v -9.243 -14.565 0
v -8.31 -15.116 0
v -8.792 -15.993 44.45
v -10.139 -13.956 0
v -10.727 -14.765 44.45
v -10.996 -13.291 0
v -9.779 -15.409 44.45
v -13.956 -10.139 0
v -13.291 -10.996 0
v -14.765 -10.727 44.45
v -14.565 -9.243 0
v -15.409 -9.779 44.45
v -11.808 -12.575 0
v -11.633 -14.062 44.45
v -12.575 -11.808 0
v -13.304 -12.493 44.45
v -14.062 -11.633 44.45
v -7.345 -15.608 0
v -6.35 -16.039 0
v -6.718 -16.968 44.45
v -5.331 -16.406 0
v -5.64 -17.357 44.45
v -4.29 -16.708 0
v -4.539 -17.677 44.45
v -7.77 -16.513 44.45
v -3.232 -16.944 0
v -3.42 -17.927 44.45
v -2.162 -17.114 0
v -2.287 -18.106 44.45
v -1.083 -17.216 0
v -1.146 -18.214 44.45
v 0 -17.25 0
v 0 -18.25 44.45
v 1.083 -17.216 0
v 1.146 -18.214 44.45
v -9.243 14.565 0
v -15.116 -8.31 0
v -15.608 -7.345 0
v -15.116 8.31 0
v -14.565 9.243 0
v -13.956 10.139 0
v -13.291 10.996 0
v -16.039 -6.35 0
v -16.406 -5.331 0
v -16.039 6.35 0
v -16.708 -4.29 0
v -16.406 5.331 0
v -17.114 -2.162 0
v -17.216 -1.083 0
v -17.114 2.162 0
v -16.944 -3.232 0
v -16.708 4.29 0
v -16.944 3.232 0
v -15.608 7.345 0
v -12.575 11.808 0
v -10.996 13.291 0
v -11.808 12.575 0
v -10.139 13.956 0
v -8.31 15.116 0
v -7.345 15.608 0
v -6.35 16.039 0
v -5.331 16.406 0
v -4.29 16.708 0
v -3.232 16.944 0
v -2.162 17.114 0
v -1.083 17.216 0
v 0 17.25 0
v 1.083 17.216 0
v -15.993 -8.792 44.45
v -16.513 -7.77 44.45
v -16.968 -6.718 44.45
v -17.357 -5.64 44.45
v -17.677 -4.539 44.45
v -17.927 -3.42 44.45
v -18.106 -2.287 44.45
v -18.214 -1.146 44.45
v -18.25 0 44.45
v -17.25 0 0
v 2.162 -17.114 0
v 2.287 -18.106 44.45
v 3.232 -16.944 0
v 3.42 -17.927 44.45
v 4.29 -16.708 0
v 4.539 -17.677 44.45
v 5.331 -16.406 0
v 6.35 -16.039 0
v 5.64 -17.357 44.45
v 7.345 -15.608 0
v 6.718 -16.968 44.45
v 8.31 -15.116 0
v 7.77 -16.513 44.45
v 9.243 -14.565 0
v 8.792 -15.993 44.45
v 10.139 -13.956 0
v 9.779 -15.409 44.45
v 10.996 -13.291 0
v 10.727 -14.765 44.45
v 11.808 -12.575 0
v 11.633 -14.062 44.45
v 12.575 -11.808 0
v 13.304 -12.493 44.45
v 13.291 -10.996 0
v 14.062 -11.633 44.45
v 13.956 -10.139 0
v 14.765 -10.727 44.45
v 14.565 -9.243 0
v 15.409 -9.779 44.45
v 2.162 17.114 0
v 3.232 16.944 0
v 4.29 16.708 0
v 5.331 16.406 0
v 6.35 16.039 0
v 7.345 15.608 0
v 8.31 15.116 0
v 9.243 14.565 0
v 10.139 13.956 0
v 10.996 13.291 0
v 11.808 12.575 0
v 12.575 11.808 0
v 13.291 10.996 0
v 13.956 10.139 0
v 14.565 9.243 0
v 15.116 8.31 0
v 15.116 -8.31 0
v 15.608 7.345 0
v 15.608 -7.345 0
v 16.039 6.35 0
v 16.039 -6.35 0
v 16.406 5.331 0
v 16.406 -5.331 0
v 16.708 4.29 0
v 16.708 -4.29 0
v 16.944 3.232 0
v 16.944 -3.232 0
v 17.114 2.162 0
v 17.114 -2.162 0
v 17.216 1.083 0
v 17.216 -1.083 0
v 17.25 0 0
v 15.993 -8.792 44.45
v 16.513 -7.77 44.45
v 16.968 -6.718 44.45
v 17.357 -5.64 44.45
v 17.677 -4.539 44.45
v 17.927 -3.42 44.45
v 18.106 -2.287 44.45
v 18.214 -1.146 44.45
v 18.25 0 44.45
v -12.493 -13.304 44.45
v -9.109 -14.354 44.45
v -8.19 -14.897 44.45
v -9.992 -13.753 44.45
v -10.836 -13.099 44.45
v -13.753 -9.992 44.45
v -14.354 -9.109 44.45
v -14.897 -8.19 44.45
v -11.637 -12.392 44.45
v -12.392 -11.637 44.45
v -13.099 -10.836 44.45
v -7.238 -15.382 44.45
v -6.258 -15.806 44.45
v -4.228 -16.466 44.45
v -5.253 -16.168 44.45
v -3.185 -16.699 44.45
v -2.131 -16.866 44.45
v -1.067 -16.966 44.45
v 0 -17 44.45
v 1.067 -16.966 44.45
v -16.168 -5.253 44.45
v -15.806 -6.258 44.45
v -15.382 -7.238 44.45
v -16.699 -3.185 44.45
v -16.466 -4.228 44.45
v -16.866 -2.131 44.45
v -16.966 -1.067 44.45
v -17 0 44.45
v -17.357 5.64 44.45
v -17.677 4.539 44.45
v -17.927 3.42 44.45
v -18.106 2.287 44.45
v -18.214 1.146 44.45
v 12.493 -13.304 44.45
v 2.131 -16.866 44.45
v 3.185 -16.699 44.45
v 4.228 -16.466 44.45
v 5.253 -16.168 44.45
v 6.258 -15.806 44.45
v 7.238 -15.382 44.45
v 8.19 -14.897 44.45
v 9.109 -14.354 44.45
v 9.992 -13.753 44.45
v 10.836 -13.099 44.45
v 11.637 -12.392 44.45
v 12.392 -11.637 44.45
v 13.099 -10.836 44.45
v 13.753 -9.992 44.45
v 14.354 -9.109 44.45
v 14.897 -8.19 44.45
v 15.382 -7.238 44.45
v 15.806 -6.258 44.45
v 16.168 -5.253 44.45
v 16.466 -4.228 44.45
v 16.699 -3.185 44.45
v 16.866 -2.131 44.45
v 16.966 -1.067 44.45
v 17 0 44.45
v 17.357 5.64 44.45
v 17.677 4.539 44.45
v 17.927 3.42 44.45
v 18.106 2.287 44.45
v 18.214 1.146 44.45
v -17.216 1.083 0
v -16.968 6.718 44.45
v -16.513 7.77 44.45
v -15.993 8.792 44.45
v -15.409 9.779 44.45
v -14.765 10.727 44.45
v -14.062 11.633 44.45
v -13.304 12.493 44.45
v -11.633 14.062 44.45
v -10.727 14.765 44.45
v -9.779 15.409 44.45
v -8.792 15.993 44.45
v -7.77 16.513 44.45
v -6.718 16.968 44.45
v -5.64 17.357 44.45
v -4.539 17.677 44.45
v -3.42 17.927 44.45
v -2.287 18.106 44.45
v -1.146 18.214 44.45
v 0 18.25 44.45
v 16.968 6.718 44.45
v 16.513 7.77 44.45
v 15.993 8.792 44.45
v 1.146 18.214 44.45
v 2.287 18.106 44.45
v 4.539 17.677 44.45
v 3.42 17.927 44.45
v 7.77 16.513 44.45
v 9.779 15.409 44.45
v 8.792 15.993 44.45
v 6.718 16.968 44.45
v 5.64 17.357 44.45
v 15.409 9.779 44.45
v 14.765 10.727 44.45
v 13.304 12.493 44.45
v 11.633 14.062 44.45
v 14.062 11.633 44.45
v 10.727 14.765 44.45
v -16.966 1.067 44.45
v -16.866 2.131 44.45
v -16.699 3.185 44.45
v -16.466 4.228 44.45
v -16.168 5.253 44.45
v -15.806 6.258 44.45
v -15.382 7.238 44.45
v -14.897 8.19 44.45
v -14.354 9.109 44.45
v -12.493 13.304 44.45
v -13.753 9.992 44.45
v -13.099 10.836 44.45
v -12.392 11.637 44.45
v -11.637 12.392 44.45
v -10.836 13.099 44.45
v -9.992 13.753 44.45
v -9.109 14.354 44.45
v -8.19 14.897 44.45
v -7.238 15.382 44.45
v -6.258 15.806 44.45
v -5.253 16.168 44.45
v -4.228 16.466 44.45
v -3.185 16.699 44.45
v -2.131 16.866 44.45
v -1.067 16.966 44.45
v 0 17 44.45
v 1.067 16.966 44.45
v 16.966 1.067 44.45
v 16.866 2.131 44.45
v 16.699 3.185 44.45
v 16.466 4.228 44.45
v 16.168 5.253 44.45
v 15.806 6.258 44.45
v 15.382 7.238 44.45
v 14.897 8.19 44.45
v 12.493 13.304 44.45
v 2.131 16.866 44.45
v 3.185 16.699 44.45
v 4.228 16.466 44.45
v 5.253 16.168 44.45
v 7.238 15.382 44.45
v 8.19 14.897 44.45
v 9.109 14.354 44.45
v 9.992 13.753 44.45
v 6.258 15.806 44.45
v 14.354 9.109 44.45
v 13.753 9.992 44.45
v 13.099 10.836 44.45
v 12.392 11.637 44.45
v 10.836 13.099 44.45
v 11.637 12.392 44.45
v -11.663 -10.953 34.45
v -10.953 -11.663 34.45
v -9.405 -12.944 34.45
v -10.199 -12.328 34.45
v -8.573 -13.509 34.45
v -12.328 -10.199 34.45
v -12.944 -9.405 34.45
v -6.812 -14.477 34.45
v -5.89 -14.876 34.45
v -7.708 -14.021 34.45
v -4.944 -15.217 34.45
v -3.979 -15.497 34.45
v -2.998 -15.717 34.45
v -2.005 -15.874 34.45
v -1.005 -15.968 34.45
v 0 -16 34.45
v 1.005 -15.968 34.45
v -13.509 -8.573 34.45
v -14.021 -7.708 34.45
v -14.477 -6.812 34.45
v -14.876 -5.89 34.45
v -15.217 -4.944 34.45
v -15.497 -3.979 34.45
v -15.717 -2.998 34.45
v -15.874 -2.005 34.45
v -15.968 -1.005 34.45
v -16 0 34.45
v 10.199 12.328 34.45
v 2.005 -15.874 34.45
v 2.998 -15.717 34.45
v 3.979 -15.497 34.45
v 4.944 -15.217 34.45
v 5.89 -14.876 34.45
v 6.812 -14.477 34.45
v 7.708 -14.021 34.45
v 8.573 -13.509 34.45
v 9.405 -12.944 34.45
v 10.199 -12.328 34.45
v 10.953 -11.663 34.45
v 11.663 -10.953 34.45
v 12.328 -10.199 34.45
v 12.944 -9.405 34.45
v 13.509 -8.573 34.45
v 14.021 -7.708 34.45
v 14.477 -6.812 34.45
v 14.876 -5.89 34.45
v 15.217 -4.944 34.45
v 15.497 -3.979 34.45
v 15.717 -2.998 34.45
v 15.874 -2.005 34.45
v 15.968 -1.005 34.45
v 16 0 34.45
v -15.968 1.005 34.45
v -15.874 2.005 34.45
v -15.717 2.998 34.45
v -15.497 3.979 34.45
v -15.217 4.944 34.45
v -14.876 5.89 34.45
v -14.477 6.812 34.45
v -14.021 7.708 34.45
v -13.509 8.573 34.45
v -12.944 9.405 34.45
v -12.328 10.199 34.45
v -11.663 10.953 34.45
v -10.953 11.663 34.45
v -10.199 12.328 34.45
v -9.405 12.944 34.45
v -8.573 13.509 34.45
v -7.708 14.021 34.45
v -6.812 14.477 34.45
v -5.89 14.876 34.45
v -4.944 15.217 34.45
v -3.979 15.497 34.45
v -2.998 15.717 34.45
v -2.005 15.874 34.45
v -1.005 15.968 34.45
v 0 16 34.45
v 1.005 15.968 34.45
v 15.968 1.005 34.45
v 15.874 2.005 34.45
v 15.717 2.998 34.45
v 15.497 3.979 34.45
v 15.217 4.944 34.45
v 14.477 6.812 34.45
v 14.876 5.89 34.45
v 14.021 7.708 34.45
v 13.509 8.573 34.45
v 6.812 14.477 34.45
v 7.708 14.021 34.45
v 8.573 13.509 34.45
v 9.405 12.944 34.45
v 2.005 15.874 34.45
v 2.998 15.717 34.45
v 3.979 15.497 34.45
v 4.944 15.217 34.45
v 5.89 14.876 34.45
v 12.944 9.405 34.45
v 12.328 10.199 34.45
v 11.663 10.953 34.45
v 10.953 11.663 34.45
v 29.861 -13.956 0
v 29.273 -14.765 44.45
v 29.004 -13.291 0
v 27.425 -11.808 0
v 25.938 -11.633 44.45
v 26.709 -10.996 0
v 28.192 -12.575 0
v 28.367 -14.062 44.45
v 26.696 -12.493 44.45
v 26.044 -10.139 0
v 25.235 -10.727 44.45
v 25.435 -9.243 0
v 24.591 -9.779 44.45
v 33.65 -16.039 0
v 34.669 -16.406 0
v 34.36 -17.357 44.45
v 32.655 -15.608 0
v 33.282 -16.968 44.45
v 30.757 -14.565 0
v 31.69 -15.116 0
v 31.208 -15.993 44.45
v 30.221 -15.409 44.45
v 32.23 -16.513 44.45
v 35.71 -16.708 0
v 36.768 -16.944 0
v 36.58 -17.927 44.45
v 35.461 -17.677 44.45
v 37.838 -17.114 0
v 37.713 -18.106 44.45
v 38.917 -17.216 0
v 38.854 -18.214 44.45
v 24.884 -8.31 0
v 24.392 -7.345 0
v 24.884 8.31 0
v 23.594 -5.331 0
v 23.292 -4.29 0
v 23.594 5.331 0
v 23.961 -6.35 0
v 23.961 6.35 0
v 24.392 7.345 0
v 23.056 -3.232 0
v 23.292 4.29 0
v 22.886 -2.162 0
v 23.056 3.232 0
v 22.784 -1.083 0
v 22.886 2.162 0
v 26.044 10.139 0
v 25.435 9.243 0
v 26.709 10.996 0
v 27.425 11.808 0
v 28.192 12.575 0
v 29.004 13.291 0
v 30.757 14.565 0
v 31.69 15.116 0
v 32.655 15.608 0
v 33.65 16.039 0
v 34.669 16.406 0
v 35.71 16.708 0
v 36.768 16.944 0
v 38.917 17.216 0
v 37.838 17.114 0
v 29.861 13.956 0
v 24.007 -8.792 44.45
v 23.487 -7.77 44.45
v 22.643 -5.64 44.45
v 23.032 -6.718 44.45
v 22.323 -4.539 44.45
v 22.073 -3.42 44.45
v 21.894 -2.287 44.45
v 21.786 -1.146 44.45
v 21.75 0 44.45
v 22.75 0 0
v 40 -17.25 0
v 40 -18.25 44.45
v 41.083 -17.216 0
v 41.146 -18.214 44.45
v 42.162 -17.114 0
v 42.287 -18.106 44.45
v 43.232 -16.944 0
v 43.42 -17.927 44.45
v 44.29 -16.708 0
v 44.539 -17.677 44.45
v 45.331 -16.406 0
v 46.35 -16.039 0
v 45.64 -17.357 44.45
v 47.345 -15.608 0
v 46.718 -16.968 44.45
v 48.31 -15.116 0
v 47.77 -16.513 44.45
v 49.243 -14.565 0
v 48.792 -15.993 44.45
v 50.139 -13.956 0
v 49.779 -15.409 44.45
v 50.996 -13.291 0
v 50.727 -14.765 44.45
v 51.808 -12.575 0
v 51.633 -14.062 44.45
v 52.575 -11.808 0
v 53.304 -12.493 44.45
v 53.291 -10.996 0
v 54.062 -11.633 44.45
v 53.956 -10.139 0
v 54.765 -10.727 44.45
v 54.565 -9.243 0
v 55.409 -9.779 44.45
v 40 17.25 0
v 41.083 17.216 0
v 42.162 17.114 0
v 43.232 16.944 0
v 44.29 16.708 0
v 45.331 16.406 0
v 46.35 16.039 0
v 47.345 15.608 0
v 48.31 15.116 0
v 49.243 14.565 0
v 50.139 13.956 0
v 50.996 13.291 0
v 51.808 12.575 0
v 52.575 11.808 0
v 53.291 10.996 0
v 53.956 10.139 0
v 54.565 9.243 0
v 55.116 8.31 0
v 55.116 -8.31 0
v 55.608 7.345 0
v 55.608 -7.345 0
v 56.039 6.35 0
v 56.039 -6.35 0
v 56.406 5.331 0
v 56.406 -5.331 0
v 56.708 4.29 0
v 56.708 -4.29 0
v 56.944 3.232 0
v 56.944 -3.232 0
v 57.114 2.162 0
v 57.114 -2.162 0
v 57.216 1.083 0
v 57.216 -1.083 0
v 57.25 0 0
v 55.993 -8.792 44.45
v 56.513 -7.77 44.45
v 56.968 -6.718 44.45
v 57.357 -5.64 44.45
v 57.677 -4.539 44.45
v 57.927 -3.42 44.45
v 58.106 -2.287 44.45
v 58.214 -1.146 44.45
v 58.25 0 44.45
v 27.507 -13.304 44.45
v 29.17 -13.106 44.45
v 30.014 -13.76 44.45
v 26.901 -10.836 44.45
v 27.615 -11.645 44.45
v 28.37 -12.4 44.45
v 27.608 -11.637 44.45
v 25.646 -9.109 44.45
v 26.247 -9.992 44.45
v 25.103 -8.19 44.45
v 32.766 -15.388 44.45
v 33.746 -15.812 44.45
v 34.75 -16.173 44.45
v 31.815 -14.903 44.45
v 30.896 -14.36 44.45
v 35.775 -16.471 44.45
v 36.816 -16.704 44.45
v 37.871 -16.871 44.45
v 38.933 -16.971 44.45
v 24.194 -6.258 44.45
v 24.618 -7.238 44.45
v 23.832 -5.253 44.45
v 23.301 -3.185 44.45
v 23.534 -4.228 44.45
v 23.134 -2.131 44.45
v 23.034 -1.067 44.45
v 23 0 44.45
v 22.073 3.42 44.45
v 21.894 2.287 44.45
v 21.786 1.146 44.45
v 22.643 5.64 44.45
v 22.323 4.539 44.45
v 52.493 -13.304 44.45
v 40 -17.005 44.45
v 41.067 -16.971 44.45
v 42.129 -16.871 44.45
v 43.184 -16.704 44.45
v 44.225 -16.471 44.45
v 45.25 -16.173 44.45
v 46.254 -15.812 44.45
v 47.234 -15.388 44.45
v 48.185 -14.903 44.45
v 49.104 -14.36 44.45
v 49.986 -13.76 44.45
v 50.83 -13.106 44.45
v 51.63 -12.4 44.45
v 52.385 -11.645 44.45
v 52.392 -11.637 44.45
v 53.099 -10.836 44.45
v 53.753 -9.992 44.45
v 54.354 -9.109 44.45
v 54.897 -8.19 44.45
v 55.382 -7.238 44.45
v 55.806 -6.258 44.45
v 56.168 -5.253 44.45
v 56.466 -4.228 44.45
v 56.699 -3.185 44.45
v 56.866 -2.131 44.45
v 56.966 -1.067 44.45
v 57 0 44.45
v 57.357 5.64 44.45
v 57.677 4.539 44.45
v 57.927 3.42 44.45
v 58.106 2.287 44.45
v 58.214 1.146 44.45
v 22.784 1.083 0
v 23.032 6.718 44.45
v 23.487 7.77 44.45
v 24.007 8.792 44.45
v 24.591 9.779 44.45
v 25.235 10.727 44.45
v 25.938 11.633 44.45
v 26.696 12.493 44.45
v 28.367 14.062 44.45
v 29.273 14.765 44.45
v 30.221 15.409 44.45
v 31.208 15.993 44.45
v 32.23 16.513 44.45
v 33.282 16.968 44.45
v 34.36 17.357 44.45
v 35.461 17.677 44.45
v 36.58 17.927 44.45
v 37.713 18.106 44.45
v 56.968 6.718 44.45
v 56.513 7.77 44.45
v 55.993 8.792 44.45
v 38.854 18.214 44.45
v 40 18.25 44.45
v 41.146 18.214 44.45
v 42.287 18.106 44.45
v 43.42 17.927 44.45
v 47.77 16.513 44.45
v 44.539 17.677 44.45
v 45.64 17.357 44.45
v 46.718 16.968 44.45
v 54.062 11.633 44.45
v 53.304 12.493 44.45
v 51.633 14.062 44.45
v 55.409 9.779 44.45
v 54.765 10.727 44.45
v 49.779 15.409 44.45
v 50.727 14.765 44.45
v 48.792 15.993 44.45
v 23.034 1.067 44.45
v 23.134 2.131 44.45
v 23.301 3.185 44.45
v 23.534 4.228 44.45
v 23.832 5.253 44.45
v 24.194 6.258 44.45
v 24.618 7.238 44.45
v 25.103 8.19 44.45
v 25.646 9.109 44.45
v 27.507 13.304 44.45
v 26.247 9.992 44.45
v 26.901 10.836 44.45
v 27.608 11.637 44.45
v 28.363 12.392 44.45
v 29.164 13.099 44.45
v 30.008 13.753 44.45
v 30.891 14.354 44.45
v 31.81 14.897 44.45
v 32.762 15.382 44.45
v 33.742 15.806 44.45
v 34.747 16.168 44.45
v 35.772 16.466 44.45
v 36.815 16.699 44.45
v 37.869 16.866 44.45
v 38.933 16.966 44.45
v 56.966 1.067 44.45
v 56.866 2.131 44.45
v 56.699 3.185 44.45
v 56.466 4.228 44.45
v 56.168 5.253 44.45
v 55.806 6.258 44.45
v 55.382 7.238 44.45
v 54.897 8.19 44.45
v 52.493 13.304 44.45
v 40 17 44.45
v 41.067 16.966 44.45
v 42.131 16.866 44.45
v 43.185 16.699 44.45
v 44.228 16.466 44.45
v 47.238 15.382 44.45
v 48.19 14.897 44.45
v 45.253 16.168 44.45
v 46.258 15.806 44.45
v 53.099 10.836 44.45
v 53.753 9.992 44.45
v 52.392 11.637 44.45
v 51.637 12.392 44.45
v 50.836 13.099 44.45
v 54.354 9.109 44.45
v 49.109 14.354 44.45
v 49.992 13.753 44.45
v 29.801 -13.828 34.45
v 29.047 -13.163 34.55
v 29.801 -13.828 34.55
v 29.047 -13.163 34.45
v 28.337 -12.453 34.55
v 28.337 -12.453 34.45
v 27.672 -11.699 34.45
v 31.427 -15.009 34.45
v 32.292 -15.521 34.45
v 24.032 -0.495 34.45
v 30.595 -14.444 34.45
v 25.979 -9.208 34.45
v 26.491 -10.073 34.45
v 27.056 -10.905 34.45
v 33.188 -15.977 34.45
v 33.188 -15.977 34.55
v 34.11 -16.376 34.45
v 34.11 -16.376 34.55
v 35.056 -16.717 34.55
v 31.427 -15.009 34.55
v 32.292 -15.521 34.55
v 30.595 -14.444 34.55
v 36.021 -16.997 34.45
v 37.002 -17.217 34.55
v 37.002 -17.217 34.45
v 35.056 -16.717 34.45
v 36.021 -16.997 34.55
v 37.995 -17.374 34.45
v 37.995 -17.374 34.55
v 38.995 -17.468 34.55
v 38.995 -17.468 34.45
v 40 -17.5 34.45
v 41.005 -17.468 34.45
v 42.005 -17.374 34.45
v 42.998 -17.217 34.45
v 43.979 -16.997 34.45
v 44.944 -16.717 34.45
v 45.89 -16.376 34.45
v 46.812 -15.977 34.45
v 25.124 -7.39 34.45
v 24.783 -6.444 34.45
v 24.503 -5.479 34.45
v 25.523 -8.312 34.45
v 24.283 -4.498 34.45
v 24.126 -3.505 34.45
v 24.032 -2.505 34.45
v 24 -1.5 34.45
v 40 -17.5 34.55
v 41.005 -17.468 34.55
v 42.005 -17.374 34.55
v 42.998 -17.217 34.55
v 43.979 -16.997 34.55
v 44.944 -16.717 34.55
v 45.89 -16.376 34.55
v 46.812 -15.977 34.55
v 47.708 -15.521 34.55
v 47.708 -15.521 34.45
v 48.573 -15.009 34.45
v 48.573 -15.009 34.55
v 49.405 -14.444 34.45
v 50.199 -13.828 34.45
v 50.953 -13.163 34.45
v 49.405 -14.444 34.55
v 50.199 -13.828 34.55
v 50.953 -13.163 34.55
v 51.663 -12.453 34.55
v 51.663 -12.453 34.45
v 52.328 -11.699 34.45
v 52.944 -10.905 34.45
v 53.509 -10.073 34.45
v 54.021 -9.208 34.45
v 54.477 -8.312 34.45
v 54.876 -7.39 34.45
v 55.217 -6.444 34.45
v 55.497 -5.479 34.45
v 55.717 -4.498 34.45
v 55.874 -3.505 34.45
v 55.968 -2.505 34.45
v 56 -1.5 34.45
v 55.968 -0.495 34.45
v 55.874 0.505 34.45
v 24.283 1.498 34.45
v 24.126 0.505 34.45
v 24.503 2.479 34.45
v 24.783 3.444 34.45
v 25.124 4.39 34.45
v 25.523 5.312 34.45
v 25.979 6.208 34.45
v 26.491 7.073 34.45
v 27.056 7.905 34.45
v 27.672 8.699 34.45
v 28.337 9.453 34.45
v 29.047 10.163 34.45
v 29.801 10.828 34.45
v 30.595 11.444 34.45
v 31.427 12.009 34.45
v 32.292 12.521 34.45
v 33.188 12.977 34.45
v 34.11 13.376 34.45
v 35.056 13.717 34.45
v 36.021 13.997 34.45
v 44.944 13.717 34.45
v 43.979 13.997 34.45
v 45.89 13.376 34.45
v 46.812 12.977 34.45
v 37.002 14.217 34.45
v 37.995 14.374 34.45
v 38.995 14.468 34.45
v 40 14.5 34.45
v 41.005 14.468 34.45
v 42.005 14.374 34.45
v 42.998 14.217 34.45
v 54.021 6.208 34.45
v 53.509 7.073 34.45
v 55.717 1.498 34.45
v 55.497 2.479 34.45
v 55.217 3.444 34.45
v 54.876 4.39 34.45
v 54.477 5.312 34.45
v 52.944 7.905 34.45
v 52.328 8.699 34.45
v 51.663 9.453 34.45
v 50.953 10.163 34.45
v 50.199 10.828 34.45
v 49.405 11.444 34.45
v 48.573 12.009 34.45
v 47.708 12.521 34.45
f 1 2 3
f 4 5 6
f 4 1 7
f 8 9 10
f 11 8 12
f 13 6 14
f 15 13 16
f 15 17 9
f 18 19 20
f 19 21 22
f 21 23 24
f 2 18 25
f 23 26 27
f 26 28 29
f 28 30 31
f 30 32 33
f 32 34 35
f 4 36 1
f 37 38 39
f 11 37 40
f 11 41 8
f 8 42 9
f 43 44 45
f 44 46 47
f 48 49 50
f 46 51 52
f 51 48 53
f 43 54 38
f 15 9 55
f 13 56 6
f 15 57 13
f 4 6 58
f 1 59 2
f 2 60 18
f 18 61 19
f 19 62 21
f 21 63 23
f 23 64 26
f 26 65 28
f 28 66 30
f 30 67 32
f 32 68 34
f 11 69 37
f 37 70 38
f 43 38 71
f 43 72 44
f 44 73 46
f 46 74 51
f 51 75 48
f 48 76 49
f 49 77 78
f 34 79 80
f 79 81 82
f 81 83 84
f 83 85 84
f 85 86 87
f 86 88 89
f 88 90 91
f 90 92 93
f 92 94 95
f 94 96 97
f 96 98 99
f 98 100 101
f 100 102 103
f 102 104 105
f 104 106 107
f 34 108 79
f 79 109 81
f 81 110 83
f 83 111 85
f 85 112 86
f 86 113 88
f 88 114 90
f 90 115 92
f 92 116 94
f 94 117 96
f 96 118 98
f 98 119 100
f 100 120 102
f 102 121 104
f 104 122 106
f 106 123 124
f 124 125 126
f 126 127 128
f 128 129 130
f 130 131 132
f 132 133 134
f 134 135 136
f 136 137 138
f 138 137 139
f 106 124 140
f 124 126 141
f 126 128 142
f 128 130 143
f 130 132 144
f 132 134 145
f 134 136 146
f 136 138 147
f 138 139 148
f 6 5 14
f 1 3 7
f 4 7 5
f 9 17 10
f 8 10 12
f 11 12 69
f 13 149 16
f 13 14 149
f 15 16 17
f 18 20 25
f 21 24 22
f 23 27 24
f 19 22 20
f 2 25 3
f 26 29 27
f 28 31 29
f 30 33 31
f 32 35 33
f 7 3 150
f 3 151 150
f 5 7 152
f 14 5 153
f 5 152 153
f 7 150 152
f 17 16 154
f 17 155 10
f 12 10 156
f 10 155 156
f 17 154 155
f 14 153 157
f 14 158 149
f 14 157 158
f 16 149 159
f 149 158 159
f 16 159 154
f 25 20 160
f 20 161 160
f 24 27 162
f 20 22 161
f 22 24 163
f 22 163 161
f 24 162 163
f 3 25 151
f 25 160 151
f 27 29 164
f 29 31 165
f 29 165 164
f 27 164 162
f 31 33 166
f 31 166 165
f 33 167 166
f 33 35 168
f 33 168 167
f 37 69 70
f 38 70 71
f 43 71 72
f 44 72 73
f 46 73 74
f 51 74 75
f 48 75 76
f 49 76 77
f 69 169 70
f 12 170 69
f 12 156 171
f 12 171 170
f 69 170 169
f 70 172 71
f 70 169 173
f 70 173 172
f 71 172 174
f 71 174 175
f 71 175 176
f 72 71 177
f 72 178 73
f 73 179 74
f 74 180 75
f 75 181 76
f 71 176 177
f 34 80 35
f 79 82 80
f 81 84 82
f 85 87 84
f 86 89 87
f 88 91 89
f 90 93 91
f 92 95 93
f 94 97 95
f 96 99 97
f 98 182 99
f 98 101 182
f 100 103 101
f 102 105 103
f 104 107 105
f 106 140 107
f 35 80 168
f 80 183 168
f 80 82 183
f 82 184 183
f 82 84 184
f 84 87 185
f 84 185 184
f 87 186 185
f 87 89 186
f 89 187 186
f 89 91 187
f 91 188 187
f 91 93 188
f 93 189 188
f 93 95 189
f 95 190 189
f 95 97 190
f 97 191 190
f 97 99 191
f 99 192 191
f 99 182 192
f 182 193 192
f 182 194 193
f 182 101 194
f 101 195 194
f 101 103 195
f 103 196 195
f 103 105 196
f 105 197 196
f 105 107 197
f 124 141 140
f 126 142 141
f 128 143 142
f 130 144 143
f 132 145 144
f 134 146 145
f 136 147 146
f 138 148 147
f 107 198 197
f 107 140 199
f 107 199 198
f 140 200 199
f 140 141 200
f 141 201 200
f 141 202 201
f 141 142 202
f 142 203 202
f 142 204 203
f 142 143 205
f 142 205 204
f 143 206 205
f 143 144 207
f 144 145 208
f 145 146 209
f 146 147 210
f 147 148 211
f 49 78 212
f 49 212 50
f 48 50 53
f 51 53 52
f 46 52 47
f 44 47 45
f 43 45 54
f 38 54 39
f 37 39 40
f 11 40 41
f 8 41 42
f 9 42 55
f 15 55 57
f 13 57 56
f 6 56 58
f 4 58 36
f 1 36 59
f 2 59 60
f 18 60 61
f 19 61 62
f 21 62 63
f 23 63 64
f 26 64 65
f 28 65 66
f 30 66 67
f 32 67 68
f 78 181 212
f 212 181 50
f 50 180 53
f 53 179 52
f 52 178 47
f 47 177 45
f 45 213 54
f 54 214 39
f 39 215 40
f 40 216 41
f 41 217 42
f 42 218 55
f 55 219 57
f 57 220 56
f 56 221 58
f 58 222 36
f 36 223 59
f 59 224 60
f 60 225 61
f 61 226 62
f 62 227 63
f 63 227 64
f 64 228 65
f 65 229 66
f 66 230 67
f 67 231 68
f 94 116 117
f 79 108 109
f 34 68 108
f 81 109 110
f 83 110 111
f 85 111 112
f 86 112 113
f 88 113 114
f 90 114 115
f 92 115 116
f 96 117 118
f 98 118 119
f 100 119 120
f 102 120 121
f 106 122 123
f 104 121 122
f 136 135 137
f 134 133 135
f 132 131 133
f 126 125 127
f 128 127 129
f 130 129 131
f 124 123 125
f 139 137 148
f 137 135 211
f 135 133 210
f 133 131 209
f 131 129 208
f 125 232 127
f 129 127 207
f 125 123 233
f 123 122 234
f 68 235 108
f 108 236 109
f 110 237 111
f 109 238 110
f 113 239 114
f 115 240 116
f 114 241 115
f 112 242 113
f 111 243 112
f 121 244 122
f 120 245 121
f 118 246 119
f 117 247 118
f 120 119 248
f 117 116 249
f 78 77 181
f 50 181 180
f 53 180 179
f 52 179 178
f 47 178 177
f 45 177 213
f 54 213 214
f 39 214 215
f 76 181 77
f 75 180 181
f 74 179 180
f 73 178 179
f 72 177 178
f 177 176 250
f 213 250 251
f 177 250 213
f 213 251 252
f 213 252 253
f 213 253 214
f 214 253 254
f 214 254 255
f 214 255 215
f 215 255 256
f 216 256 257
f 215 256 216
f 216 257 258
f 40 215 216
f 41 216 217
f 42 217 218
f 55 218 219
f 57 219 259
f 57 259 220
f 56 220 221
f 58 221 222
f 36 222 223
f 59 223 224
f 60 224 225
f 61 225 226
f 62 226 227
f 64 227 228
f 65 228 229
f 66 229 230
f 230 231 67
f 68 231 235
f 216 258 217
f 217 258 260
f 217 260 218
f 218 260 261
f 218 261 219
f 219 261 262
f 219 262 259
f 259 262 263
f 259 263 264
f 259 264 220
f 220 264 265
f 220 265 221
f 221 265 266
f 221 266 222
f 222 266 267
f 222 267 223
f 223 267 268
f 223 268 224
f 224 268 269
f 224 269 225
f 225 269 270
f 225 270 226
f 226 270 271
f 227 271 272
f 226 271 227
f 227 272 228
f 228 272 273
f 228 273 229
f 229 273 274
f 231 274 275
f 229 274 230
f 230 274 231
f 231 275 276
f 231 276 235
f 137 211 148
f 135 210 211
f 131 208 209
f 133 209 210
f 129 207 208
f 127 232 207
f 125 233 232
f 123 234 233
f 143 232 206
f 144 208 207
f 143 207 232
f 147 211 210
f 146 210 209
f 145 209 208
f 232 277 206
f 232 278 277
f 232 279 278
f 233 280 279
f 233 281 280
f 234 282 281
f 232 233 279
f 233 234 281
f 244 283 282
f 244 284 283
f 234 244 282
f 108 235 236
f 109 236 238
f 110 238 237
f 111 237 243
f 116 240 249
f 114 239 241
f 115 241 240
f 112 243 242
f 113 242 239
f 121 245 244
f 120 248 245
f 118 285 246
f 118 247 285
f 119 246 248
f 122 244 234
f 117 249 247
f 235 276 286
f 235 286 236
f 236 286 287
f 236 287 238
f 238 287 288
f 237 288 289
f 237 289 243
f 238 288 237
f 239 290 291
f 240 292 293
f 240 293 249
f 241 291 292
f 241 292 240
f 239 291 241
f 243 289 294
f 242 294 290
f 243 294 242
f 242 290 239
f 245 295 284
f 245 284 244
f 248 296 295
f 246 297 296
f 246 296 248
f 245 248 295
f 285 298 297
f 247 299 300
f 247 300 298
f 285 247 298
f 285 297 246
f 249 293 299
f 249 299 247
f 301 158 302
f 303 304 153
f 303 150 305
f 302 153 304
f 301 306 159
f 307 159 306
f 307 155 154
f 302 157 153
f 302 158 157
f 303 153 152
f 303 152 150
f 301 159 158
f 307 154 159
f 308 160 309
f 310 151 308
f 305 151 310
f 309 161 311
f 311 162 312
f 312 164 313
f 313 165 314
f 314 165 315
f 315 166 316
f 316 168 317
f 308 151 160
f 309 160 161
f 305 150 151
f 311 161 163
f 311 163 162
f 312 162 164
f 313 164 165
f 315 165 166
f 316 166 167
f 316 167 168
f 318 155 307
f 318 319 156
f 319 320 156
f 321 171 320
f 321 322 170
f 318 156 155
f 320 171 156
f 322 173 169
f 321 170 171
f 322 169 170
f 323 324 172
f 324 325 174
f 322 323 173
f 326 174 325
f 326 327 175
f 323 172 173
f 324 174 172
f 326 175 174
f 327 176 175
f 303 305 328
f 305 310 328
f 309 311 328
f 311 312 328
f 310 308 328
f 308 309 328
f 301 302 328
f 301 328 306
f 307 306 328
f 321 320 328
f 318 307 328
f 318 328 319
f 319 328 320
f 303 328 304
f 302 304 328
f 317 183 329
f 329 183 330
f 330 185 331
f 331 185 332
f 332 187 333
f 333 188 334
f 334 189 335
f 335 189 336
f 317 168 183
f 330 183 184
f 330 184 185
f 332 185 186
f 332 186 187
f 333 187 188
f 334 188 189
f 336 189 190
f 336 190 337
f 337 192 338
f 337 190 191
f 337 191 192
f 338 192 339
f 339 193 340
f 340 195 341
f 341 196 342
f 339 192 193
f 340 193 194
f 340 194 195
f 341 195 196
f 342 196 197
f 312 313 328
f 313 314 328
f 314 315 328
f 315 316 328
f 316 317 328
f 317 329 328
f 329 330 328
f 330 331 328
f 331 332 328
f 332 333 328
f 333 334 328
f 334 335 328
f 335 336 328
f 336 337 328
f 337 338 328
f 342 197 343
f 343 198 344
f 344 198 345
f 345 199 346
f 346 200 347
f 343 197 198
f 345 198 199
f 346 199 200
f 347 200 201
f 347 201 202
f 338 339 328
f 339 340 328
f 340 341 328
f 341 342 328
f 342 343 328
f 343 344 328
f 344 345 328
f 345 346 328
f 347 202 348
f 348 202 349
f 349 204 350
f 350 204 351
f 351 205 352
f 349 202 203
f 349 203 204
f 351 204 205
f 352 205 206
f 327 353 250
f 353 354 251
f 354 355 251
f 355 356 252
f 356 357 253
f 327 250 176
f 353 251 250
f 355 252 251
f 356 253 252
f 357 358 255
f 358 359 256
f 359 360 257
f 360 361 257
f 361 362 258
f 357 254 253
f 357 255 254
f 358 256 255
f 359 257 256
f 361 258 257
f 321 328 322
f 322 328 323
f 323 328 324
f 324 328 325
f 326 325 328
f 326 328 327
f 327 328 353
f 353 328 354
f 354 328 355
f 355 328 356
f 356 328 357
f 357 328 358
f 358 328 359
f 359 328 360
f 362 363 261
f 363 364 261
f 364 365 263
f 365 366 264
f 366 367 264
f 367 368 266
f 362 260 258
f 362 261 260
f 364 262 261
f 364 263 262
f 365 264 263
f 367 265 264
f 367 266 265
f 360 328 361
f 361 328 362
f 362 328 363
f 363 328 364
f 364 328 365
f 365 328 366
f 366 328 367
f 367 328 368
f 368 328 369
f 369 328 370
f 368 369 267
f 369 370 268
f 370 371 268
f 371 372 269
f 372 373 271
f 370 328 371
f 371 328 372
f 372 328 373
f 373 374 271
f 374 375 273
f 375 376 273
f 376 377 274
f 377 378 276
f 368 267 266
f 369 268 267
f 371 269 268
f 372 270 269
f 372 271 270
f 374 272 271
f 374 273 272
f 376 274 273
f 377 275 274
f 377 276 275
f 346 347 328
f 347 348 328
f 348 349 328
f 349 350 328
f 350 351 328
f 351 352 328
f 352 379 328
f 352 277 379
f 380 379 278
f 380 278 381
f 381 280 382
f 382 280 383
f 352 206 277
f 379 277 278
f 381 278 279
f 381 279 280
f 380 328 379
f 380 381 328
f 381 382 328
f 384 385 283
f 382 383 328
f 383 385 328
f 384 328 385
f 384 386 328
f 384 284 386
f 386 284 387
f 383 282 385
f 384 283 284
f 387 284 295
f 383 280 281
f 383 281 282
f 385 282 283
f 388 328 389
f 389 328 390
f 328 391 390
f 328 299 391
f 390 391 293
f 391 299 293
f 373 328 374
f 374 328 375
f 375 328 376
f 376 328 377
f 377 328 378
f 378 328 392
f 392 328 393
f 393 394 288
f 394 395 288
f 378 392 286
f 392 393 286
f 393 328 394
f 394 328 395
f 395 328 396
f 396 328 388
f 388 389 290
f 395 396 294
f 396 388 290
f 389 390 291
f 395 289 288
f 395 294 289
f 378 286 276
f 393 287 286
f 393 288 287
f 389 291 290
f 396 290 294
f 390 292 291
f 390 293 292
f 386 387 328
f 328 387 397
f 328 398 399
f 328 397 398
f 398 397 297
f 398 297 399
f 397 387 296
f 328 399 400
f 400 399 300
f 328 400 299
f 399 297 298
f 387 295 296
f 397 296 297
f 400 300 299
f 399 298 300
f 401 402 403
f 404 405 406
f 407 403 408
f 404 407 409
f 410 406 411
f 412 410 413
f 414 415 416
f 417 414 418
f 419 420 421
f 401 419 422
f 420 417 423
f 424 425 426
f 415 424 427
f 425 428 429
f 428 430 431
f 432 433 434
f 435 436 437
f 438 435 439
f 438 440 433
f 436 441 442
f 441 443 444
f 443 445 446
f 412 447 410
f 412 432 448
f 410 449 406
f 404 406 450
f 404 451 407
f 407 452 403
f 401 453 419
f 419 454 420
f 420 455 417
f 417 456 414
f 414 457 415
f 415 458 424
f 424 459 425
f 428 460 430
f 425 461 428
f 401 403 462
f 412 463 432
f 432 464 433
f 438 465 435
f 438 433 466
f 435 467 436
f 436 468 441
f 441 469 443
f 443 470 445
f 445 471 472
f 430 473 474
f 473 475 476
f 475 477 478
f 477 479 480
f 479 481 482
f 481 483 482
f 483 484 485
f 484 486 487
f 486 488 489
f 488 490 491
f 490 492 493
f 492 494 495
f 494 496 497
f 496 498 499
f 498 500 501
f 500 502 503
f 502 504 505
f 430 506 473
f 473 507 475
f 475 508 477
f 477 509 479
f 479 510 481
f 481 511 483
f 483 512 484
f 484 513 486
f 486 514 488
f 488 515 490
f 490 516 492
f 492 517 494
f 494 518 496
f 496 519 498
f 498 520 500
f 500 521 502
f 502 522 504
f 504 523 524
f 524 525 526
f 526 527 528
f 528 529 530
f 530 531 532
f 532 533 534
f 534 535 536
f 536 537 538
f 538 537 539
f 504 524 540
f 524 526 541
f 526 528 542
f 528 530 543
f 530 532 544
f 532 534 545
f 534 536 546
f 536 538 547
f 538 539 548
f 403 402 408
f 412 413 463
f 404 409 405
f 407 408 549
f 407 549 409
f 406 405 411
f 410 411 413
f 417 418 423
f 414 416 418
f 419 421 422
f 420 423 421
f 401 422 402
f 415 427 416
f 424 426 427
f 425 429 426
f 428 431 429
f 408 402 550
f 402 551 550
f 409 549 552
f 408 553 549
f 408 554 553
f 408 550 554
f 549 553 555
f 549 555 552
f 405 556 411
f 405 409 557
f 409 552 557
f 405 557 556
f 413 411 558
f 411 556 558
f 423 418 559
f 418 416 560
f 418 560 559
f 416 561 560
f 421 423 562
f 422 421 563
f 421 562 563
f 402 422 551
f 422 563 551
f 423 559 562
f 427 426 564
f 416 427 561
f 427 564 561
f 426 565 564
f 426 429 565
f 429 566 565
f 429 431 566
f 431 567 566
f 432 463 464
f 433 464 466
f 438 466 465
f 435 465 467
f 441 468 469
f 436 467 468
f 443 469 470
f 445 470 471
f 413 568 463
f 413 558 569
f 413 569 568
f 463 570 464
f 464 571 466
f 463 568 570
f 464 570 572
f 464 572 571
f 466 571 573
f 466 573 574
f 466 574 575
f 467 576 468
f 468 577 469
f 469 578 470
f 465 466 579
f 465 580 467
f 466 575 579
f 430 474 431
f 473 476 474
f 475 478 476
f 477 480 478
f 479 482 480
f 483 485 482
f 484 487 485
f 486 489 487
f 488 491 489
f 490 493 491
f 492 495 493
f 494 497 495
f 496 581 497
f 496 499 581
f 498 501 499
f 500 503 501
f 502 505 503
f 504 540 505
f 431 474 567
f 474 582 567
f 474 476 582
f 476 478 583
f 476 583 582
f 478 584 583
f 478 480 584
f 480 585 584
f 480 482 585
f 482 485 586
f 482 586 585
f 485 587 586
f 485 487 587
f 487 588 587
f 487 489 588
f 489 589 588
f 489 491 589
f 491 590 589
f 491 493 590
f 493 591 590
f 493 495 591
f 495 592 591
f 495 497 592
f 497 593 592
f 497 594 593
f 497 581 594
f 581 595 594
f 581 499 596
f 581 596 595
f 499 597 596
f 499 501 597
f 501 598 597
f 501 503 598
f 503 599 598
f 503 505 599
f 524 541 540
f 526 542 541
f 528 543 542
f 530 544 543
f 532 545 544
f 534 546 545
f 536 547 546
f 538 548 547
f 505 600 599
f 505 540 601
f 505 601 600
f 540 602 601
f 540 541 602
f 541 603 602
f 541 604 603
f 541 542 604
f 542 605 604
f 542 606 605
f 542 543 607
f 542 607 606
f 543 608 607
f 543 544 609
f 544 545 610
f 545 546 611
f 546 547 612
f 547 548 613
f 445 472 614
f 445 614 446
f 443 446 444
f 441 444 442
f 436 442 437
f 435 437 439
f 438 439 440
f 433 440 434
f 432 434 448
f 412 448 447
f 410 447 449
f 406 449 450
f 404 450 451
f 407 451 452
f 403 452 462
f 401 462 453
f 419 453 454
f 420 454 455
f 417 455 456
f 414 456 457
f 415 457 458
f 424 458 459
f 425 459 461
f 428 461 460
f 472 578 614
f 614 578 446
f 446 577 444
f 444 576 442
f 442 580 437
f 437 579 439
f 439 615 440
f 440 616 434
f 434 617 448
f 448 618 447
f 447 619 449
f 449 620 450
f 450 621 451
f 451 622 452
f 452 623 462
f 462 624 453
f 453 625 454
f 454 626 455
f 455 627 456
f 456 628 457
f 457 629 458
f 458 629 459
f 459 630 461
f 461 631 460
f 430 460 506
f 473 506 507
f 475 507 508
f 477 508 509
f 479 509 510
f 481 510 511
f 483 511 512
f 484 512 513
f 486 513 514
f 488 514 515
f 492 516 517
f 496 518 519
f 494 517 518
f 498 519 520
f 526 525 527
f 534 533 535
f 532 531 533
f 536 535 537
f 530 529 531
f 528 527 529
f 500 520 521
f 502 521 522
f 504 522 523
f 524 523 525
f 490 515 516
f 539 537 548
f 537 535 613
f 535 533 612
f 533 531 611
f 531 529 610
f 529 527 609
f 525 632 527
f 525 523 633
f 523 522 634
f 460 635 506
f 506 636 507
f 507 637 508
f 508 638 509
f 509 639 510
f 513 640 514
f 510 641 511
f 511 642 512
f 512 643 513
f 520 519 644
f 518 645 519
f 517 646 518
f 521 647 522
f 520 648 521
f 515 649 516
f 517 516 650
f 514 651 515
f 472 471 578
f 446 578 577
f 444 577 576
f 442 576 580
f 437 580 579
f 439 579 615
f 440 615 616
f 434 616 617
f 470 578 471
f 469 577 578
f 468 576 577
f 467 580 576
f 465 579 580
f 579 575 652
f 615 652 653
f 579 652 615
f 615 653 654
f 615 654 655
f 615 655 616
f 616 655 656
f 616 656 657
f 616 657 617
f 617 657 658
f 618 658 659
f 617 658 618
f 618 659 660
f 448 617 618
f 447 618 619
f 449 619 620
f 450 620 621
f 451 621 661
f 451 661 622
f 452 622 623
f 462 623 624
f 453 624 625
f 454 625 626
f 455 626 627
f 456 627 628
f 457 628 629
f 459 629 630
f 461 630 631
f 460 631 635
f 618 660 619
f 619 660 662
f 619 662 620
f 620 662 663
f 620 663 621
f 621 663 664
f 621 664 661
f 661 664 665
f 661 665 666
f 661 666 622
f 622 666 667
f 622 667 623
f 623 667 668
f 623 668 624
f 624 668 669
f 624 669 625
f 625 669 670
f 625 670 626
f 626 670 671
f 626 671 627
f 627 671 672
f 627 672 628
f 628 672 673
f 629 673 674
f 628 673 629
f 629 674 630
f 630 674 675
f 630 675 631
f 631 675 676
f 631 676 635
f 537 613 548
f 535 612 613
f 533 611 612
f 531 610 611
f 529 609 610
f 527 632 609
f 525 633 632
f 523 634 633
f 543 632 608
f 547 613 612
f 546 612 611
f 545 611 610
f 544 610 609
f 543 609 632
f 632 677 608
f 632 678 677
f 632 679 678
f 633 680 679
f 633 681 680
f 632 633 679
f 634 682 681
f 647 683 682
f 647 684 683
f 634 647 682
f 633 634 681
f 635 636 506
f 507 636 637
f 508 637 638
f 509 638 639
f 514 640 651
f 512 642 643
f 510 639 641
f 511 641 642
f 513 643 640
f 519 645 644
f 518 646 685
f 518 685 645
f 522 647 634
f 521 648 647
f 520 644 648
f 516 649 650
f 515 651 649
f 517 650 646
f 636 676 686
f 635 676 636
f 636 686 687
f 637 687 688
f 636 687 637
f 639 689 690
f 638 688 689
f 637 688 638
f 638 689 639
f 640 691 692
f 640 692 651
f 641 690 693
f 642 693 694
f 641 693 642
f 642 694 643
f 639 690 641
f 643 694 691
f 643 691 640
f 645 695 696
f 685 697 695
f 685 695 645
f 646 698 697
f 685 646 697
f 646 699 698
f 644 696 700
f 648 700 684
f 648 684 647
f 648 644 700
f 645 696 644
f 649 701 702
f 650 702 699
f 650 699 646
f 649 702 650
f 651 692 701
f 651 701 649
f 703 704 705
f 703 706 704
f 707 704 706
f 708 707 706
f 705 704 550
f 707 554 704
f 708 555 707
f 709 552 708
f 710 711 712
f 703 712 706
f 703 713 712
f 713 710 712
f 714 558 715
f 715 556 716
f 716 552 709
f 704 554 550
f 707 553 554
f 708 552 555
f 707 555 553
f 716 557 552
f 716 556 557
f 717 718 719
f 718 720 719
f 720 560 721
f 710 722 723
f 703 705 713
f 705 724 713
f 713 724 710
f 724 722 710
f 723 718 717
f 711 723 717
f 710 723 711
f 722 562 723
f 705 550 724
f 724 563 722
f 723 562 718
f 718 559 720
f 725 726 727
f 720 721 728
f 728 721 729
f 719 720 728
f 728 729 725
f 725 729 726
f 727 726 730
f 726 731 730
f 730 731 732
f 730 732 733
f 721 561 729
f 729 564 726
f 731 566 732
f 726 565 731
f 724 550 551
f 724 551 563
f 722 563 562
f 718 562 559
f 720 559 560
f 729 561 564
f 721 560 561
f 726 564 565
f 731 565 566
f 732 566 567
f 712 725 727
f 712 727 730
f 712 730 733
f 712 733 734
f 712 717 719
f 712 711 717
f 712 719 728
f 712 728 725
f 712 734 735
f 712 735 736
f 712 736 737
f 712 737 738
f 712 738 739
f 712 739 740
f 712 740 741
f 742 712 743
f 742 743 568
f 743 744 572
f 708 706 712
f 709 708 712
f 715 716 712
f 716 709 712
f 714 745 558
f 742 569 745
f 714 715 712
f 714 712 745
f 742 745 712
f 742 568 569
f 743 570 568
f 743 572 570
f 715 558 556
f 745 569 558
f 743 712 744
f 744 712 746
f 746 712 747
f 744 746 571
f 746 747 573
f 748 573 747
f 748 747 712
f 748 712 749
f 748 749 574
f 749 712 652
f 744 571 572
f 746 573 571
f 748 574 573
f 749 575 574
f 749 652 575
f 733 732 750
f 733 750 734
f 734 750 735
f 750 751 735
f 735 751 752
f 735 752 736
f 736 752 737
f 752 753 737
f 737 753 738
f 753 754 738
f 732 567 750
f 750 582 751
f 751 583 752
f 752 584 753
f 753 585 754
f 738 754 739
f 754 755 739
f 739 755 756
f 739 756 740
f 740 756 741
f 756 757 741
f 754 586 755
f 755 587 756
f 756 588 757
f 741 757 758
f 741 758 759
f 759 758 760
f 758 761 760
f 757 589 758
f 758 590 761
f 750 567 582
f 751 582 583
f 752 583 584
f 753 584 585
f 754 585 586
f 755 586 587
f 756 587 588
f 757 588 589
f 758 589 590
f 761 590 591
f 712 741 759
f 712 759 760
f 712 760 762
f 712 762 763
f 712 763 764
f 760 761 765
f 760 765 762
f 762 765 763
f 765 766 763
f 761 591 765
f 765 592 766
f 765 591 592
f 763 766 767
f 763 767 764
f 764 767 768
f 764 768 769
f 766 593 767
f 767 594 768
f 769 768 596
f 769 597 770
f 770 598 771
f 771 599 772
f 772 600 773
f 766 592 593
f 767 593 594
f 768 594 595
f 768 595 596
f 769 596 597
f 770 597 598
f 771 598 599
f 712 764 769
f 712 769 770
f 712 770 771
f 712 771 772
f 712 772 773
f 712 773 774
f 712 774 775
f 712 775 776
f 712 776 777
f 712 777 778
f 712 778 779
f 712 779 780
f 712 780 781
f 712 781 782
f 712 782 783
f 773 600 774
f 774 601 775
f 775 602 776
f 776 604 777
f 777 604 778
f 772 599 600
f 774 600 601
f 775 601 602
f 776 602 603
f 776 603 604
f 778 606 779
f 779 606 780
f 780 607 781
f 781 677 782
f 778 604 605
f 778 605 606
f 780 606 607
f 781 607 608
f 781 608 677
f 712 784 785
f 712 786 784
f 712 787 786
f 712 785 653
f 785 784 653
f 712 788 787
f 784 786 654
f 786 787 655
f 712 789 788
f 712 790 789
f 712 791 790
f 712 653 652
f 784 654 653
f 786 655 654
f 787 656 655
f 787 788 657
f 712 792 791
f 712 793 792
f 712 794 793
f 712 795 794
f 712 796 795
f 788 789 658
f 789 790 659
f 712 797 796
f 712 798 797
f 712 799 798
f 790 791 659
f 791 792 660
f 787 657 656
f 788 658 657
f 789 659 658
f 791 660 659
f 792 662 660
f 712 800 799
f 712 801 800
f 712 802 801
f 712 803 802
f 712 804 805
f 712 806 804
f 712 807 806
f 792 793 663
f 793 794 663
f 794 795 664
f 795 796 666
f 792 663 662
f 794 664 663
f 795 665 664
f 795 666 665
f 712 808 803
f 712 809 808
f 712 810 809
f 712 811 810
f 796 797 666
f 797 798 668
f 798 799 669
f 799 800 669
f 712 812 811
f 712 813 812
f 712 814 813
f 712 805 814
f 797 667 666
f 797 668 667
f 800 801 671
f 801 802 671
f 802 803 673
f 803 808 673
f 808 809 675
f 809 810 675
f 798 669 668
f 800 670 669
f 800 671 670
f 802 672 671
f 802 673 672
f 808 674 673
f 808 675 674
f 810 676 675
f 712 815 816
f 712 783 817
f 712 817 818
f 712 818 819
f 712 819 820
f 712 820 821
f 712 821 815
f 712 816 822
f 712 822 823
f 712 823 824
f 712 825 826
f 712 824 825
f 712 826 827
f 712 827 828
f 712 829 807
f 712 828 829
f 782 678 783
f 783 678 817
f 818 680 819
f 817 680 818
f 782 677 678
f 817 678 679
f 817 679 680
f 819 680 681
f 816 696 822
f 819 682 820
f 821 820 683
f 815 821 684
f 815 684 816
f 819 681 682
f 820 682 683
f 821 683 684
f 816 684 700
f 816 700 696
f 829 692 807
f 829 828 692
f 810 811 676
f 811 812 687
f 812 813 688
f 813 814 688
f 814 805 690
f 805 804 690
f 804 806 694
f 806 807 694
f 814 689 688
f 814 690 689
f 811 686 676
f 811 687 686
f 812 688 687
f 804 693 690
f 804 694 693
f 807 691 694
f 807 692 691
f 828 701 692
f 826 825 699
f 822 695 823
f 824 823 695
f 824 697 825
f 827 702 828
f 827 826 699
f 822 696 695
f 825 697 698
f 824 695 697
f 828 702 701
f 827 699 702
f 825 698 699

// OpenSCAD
// Furniture Booster - measurements in mm

// Leg type: "round" or "square"
leg_type = "round";

// Round leg cavity settings
cavity_base_diameter = 32;
cavity_top_diameter = 34;

// Square/rectangular leg cavity settings
cavity_base_width = 32;   // X dimension at bottom
cavity_base_length = 32;  // Y dimension at bottom
cavity_top_width = 34;    // X dimension at top (slight taper for easy fit)
cavity_top_length = 34;   // Y dimension at top
corner_radius = 2;        // Radius for rounded corners (0 for sharp corners)

// Common settings
cavity_depth = 10;

// Main body
thickness = 5 / 2;
// For round legs
base_diameter = cavity_base_diameter + thickness;
top_diameter = cavity_top_diameter + thickness;
// For square legs
base_width = cavity_base_width + thickness * 2;
base_length = cavity_base_length + thickness * 2;
top_width = cavity_top_width + thickness * 2;
top_length = cavity_top_length + thickness * 2;

booster_height = 25.4 * 1.75;

// Angle settings
back_leg_angle = 15;

$fn = 100;

// Rounded rectangle module
module rounded_rect(w, l, r) {
    if (r > 0) {
        offset(r) square([w - 2*r, l - 2*r], center = true);
    } else {
        square([w, l], center = true);
    }
}

// Module for creating a riser with optional angle
module riser(o = 0) {
    if (leg_type == "round") {
        // Round leg riser
        difference() {
            cylinder(h = booster_height, d1 = base_diameter, d2 = top_diameter);

            translate([0, -o, booster_height - cavity_depth])
                hull() {
                    linear_extrude(0.1) circle(cavity_base_diameter / 2);
                    translate([0, 0 + o, cavity_depth]) linear_extrude(0.1) circle(cavity_top_diameter / 2);
               }
        }
    } else {
        // Square/rectangular leg riser
        difference() {
            // Outer body - tapered rectangular prism with rounded corners
            hull() {
                linear_extrude(0.1) rounded_rect(base_width, base_length, corner_radius);
                translate([0, 0, booster_height])
                    linear_extrude(0.1) rounded_rect(top_width, top_length, corner_radius);
            }

            // Inner cavity - tapered rectangular hole
            translate([0, -o, booster_height - cavity_depth])
                hull() {
                    linear_extrude(0.1) rounded_rect(cavity_base_width, cavity_base_length, corner_radius);
                    translate([0, 0 + o, cavity_depth])
                        linear_extrude(0.1) rounded_rect(cavity_top_width, cavity_top_length, corner_radius);
               }
        }
    }
}



// Front legs (straight)
riser();

// Back legs (offset)
translate([40, 0, 0]) riser(1.5);
